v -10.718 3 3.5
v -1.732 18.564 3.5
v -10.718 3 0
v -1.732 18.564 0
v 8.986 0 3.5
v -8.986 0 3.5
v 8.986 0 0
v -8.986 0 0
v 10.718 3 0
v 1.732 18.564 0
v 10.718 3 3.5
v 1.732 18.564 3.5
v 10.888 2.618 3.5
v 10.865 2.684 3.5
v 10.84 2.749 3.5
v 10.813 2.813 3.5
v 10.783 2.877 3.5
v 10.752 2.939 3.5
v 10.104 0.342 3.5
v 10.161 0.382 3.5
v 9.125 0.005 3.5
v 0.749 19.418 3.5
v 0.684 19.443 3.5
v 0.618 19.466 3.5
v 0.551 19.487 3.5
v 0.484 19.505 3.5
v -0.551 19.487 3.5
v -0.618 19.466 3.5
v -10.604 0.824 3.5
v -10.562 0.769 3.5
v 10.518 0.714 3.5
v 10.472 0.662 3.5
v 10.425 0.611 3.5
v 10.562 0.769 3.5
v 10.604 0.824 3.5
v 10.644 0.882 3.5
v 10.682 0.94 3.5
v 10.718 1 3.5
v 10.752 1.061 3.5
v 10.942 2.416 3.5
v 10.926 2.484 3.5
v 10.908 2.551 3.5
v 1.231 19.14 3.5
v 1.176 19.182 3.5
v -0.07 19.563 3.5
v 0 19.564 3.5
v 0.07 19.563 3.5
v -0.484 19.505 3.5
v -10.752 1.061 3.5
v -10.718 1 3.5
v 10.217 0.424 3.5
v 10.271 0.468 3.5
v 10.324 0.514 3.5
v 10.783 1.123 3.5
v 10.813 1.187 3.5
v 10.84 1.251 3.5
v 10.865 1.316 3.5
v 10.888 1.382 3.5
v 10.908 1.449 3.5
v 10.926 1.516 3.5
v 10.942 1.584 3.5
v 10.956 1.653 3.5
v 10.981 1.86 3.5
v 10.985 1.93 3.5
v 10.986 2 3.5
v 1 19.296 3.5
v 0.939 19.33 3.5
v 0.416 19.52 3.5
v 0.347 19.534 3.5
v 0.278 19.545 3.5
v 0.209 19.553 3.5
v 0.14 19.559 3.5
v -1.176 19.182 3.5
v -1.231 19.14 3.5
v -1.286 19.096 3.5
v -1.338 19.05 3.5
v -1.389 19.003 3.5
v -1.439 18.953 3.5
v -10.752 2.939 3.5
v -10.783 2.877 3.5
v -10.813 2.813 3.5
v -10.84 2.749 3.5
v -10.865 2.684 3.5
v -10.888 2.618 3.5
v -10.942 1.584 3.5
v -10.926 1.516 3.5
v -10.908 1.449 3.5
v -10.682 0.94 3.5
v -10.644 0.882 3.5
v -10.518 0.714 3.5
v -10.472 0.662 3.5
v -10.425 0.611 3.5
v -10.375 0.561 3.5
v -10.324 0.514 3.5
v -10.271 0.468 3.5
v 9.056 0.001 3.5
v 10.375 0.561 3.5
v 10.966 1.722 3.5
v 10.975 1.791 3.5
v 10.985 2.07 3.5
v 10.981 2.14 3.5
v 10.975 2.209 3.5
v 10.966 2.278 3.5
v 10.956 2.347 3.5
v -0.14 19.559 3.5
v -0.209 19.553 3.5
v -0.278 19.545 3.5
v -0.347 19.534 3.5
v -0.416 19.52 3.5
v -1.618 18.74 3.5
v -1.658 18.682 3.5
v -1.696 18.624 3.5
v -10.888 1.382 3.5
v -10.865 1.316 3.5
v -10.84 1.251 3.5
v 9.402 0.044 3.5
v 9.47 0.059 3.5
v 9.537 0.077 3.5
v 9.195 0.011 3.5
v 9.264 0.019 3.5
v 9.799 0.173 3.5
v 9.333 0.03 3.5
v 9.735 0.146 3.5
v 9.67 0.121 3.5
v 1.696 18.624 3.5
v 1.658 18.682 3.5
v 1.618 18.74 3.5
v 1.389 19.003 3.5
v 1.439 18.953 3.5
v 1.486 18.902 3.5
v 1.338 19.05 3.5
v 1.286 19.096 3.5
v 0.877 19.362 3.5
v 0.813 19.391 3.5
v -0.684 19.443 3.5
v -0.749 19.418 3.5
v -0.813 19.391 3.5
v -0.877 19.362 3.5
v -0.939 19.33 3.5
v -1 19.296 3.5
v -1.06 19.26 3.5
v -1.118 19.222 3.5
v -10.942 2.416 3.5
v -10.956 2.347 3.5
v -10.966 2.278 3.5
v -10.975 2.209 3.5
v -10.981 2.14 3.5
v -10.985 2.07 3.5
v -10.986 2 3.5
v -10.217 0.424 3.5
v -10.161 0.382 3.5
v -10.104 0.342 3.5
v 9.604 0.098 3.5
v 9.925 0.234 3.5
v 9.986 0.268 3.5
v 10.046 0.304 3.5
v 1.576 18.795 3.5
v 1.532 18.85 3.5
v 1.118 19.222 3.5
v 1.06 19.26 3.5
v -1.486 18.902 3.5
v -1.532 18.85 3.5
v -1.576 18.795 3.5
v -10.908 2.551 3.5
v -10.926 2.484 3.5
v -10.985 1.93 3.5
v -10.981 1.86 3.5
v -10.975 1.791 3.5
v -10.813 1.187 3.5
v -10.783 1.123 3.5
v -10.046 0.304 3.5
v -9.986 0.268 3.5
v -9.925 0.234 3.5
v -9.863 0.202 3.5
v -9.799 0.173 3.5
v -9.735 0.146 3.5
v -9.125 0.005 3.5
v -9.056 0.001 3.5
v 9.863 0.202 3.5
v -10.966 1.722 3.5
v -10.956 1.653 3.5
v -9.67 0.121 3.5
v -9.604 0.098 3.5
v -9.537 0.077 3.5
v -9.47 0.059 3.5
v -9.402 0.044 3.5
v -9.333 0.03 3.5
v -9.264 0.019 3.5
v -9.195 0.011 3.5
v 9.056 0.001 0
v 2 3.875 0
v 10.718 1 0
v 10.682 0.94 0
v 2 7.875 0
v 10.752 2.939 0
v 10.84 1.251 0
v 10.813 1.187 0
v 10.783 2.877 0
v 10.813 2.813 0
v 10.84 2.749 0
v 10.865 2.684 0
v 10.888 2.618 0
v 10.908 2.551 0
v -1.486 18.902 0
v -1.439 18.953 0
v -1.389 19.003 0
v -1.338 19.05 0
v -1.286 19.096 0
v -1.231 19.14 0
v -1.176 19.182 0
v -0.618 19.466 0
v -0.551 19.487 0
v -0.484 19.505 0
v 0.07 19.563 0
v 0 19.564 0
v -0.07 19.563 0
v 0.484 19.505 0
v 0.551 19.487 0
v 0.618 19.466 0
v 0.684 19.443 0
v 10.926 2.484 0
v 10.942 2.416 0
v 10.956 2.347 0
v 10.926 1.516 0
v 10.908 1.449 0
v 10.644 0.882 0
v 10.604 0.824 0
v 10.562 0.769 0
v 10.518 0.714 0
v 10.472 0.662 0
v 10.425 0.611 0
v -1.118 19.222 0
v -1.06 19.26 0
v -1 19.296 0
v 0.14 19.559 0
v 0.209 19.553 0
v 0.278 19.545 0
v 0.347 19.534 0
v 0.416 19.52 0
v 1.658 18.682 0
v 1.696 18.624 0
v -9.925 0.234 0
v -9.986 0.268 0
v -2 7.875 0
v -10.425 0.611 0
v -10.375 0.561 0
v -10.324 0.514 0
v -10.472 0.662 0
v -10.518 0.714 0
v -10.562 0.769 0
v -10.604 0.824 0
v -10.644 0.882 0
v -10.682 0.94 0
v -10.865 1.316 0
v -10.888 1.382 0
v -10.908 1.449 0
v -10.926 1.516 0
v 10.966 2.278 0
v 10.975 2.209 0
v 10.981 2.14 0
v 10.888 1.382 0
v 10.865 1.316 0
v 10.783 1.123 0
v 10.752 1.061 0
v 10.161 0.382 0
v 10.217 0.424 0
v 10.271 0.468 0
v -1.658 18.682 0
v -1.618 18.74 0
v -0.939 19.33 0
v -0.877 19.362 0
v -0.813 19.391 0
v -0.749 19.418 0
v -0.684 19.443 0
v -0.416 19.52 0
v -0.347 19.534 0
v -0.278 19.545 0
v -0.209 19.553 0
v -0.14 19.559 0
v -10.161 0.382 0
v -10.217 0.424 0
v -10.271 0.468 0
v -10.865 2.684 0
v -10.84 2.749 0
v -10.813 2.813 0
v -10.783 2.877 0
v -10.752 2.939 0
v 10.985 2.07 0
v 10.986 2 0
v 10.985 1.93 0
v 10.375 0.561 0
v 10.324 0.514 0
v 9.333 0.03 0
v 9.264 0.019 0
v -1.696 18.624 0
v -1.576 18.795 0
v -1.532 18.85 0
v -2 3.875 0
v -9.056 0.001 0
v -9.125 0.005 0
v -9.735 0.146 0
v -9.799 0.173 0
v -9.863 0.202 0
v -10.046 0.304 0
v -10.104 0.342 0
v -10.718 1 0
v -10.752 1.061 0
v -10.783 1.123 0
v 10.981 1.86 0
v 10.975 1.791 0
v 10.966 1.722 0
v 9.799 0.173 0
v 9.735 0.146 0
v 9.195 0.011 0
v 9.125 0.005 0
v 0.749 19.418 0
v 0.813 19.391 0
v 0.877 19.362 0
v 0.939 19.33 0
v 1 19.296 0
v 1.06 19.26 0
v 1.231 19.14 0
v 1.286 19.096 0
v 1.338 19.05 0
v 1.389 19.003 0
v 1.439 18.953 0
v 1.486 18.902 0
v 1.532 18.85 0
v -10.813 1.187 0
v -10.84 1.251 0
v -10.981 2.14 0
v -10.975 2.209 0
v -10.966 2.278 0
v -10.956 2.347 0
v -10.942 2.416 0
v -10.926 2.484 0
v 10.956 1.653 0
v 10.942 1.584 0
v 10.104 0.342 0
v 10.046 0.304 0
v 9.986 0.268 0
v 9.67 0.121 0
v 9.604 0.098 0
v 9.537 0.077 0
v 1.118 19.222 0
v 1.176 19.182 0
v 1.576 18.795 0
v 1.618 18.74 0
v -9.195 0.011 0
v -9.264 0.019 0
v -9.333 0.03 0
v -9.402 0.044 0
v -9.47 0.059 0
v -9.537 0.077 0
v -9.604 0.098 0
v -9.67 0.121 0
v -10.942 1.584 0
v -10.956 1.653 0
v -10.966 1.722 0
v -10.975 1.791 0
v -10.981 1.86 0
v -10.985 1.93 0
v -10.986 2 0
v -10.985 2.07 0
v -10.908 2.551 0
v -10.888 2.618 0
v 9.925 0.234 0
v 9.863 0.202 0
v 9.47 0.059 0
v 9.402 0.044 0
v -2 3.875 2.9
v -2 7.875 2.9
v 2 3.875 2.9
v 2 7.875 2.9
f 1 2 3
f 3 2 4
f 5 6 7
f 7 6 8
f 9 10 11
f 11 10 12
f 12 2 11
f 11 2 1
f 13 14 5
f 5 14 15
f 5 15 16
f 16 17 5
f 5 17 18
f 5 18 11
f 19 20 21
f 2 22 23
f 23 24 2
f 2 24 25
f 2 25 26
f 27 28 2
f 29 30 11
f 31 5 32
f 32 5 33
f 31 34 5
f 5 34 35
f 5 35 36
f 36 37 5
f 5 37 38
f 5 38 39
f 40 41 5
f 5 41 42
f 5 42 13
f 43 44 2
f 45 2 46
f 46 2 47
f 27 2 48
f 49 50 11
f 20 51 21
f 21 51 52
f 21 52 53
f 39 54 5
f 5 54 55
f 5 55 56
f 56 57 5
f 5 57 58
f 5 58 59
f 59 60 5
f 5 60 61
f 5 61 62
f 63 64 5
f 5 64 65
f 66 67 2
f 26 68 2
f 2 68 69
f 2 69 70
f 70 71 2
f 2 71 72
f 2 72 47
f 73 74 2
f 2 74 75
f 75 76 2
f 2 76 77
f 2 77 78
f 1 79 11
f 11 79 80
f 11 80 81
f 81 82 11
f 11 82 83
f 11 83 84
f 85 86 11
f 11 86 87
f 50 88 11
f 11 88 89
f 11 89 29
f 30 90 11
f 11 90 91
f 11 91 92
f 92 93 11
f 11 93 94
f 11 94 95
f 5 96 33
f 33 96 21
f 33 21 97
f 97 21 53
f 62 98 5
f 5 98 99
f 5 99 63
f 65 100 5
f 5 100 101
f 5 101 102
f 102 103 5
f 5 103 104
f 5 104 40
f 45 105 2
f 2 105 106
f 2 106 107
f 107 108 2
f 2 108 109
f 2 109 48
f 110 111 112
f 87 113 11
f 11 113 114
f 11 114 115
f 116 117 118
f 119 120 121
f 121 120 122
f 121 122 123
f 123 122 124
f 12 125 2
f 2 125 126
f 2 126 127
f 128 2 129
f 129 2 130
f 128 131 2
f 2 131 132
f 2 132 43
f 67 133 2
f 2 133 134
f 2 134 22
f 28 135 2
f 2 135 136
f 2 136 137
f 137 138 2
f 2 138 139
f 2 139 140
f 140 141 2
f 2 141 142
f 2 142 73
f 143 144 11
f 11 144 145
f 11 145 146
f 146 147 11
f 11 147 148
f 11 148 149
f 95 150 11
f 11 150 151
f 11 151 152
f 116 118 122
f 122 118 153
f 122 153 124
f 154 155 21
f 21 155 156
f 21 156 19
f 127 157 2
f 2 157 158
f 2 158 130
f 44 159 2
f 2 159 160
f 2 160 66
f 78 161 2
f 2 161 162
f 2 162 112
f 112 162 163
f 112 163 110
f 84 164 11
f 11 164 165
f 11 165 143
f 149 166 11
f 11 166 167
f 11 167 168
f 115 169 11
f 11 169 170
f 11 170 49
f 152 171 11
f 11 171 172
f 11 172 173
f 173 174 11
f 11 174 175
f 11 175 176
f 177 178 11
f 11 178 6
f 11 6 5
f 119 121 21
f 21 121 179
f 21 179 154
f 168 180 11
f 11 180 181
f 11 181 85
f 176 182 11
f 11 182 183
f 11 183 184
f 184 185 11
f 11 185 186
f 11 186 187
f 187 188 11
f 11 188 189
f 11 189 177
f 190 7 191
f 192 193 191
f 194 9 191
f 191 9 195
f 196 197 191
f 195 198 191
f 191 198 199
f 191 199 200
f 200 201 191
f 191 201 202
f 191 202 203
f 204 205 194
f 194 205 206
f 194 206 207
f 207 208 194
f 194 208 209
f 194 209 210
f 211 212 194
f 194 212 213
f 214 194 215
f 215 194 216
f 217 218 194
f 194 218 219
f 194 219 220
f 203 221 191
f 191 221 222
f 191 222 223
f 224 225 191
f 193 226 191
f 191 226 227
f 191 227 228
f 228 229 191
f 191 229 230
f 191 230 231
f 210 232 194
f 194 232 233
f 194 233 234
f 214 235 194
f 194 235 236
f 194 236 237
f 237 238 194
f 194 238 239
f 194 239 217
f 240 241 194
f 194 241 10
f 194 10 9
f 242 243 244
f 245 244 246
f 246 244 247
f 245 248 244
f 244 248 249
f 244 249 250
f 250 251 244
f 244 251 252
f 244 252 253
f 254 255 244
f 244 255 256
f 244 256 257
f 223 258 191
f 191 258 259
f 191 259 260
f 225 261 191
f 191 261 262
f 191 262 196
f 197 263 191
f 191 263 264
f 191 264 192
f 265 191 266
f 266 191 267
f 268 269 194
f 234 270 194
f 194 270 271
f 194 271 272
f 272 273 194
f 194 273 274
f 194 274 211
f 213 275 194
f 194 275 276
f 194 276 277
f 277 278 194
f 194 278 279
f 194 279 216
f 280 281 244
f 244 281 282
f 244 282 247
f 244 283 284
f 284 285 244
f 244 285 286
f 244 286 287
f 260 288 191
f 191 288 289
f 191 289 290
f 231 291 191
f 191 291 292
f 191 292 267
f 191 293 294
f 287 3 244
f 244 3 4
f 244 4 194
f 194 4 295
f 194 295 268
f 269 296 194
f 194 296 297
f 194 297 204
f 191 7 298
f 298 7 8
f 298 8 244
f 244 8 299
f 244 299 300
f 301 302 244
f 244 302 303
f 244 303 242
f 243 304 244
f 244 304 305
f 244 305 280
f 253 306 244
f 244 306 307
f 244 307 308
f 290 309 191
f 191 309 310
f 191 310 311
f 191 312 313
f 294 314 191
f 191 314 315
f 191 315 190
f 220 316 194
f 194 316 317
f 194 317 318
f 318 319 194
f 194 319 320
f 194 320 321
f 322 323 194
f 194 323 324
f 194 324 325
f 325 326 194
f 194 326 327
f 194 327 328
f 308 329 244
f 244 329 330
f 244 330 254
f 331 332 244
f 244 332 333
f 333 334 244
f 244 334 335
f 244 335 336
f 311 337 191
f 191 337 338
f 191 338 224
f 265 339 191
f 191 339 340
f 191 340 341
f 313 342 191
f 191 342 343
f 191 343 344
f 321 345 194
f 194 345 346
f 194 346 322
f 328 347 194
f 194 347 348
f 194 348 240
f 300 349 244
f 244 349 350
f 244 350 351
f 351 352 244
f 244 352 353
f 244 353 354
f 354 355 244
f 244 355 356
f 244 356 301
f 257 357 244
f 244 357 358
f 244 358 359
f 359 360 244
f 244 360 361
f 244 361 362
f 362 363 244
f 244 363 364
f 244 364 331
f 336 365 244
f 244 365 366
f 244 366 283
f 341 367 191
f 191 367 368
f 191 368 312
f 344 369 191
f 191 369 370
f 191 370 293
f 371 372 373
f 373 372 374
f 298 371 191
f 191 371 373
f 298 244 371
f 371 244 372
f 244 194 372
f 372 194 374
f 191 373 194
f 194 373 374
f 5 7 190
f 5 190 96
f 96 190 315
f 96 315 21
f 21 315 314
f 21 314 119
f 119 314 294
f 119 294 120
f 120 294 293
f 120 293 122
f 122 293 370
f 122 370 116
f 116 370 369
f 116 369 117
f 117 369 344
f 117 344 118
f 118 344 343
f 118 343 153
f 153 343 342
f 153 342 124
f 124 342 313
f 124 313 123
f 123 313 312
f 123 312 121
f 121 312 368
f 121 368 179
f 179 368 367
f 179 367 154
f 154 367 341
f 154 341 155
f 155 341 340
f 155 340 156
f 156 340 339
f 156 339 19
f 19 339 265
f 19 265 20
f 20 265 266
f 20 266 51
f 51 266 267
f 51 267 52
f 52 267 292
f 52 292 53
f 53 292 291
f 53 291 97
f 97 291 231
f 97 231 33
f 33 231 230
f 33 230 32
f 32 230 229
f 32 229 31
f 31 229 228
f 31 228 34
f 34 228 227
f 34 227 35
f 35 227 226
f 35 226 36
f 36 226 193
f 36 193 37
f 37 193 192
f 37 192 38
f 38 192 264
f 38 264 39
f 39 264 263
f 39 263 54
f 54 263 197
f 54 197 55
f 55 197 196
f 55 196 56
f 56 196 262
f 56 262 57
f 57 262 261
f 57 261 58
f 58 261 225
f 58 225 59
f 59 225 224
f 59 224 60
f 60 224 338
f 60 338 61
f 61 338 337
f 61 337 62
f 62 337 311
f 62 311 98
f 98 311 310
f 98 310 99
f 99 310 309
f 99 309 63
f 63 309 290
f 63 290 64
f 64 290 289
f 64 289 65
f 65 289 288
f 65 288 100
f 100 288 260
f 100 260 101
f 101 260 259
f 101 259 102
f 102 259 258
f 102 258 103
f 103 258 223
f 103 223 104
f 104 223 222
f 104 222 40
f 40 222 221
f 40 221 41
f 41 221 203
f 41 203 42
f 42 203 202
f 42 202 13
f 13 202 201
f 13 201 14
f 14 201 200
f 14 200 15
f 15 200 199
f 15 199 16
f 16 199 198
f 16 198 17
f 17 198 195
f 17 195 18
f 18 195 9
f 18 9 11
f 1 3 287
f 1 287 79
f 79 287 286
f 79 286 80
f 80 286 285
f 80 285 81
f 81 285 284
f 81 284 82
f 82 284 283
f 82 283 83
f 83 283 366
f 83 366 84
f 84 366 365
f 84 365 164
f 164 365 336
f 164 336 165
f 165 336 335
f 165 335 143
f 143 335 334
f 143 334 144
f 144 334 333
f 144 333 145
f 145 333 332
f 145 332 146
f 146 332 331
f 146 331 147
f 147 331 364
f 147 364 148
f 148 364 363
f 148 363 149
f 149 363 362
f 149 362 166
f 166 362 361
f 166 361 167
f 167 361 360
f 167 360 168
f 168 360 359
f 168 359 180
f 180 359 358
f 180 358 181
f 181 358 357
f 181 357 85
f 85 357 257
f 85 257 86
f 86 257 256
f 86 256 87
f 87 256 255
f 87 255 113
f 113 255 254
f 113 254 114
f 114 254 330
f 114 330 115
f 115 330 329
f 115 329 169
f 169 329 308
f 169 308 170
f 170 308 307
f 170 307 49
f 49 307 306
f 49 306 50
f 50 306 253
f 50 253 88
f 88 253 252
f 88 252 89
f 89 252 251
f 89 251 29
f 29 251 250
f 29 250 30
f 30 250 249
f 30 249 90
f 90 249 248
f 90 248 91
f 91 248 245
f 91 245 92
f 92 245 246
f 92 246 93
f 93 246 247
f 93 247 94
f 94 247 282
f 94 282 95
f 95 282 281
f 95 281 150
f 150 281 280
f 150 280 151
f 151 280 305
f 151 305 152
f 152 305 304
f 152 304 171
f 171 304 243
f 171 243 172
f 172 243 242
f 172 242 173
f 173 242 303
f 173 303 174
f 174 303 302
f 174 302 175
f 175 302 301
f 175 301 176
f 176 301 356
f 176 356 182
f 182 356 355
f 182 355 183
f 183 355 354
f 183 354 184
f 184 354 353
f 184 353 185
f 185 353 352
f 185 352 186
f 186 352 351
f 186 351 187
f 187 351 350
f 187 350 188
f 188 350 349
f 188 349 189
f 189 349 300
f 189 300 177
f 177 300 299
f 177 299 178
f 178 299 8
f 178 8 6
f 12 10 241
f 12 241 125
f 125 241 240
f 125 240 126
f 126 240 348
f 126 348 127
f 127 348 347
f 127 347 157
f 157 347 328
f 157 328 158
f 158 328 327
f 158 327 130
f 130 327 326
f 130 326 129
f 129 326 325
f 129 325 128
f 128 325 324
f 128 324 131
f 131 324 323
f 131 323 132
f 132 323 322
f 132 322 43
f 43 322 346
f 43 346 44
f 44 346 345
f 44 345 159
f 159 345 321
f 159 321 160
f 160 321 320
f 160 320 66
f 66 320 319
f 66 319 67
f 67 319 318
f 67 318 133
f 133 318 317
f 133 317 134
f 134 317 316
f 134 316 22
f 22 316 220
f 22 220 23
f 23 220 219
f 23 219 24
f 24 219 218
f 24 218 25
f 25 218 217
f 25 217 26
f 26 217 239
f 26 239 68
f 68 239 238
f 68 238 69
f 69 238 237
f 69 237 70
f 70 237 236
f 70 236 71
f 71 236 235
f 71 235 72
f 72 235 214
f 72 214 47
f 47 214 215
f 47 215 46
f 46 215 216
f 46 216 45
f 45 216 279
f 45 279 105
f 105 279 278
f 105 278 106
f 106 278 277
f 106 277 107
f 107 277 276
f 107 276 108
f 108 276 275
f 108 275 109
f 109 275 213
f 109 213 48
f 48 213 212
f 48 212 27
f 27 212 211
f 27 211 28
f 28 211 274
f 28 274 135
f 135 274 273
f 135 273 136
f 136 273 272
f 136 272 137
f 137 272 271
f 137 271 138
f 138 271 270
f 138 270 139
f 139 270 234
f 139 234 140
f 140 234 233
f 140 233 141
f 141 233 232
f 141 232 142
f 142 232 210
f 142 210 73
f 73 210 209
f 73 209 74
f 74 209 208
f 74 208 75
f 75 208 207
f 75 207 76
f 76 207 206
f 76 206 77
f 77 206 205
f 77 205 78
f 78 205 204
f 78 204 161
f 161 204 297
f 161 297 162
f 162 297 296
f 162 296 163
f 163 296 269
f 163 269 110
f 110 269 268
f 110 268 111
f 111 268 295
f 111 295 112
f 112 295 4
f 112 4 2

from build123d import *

# Parameters (mm, degrees)
BOSS_EXTRU_1_DEPTH      = 3.5
ESQUISSE2_W             = 4
ESQUISSE2_H             = 4
ENL_V_MAT_EXTRU_1_DEPTH = 2.9
CONG_1_R                = 2


with BuildPart() as part:
    # Esquisse1 → Boss.-Extru.1 (new body)
    with BuildSketch(Plane.XY):
        Polygon((-12.45, 0), (12.45, 0), (0, 21.564032554), align=None)
    extrude(amount=BOSS_EXTRU_1_DEPTH)

    # Esquisse2 → Enlèv. mat.-Extru.1 (cut)
    with BuildSketch(Plane(origin=(0, 0, 0), x_dir=(-1, 0, 0), z_dir=(0, 0, -1))):
        with Locations((0, 5.874833395)):
            Rectangle(ESQUISSE2_W, ESQUISSE2_H)
    extrude(amount=-ENL_V_MAT_EXTRU_1_DEPTH, mode=Mode.SUBTRACT)

    # Congé1
    cong_1_edges = [part.edges().sort_by_distance(p)[0] for p in [
        (0, 21.564032554, 1.75),
        (12.45, 0, 1.75),
        (-12.45, 0, 1.75),
    ]]
    fillet(cong_1_edges, radius=CONG_1_R)


solid = part.part
